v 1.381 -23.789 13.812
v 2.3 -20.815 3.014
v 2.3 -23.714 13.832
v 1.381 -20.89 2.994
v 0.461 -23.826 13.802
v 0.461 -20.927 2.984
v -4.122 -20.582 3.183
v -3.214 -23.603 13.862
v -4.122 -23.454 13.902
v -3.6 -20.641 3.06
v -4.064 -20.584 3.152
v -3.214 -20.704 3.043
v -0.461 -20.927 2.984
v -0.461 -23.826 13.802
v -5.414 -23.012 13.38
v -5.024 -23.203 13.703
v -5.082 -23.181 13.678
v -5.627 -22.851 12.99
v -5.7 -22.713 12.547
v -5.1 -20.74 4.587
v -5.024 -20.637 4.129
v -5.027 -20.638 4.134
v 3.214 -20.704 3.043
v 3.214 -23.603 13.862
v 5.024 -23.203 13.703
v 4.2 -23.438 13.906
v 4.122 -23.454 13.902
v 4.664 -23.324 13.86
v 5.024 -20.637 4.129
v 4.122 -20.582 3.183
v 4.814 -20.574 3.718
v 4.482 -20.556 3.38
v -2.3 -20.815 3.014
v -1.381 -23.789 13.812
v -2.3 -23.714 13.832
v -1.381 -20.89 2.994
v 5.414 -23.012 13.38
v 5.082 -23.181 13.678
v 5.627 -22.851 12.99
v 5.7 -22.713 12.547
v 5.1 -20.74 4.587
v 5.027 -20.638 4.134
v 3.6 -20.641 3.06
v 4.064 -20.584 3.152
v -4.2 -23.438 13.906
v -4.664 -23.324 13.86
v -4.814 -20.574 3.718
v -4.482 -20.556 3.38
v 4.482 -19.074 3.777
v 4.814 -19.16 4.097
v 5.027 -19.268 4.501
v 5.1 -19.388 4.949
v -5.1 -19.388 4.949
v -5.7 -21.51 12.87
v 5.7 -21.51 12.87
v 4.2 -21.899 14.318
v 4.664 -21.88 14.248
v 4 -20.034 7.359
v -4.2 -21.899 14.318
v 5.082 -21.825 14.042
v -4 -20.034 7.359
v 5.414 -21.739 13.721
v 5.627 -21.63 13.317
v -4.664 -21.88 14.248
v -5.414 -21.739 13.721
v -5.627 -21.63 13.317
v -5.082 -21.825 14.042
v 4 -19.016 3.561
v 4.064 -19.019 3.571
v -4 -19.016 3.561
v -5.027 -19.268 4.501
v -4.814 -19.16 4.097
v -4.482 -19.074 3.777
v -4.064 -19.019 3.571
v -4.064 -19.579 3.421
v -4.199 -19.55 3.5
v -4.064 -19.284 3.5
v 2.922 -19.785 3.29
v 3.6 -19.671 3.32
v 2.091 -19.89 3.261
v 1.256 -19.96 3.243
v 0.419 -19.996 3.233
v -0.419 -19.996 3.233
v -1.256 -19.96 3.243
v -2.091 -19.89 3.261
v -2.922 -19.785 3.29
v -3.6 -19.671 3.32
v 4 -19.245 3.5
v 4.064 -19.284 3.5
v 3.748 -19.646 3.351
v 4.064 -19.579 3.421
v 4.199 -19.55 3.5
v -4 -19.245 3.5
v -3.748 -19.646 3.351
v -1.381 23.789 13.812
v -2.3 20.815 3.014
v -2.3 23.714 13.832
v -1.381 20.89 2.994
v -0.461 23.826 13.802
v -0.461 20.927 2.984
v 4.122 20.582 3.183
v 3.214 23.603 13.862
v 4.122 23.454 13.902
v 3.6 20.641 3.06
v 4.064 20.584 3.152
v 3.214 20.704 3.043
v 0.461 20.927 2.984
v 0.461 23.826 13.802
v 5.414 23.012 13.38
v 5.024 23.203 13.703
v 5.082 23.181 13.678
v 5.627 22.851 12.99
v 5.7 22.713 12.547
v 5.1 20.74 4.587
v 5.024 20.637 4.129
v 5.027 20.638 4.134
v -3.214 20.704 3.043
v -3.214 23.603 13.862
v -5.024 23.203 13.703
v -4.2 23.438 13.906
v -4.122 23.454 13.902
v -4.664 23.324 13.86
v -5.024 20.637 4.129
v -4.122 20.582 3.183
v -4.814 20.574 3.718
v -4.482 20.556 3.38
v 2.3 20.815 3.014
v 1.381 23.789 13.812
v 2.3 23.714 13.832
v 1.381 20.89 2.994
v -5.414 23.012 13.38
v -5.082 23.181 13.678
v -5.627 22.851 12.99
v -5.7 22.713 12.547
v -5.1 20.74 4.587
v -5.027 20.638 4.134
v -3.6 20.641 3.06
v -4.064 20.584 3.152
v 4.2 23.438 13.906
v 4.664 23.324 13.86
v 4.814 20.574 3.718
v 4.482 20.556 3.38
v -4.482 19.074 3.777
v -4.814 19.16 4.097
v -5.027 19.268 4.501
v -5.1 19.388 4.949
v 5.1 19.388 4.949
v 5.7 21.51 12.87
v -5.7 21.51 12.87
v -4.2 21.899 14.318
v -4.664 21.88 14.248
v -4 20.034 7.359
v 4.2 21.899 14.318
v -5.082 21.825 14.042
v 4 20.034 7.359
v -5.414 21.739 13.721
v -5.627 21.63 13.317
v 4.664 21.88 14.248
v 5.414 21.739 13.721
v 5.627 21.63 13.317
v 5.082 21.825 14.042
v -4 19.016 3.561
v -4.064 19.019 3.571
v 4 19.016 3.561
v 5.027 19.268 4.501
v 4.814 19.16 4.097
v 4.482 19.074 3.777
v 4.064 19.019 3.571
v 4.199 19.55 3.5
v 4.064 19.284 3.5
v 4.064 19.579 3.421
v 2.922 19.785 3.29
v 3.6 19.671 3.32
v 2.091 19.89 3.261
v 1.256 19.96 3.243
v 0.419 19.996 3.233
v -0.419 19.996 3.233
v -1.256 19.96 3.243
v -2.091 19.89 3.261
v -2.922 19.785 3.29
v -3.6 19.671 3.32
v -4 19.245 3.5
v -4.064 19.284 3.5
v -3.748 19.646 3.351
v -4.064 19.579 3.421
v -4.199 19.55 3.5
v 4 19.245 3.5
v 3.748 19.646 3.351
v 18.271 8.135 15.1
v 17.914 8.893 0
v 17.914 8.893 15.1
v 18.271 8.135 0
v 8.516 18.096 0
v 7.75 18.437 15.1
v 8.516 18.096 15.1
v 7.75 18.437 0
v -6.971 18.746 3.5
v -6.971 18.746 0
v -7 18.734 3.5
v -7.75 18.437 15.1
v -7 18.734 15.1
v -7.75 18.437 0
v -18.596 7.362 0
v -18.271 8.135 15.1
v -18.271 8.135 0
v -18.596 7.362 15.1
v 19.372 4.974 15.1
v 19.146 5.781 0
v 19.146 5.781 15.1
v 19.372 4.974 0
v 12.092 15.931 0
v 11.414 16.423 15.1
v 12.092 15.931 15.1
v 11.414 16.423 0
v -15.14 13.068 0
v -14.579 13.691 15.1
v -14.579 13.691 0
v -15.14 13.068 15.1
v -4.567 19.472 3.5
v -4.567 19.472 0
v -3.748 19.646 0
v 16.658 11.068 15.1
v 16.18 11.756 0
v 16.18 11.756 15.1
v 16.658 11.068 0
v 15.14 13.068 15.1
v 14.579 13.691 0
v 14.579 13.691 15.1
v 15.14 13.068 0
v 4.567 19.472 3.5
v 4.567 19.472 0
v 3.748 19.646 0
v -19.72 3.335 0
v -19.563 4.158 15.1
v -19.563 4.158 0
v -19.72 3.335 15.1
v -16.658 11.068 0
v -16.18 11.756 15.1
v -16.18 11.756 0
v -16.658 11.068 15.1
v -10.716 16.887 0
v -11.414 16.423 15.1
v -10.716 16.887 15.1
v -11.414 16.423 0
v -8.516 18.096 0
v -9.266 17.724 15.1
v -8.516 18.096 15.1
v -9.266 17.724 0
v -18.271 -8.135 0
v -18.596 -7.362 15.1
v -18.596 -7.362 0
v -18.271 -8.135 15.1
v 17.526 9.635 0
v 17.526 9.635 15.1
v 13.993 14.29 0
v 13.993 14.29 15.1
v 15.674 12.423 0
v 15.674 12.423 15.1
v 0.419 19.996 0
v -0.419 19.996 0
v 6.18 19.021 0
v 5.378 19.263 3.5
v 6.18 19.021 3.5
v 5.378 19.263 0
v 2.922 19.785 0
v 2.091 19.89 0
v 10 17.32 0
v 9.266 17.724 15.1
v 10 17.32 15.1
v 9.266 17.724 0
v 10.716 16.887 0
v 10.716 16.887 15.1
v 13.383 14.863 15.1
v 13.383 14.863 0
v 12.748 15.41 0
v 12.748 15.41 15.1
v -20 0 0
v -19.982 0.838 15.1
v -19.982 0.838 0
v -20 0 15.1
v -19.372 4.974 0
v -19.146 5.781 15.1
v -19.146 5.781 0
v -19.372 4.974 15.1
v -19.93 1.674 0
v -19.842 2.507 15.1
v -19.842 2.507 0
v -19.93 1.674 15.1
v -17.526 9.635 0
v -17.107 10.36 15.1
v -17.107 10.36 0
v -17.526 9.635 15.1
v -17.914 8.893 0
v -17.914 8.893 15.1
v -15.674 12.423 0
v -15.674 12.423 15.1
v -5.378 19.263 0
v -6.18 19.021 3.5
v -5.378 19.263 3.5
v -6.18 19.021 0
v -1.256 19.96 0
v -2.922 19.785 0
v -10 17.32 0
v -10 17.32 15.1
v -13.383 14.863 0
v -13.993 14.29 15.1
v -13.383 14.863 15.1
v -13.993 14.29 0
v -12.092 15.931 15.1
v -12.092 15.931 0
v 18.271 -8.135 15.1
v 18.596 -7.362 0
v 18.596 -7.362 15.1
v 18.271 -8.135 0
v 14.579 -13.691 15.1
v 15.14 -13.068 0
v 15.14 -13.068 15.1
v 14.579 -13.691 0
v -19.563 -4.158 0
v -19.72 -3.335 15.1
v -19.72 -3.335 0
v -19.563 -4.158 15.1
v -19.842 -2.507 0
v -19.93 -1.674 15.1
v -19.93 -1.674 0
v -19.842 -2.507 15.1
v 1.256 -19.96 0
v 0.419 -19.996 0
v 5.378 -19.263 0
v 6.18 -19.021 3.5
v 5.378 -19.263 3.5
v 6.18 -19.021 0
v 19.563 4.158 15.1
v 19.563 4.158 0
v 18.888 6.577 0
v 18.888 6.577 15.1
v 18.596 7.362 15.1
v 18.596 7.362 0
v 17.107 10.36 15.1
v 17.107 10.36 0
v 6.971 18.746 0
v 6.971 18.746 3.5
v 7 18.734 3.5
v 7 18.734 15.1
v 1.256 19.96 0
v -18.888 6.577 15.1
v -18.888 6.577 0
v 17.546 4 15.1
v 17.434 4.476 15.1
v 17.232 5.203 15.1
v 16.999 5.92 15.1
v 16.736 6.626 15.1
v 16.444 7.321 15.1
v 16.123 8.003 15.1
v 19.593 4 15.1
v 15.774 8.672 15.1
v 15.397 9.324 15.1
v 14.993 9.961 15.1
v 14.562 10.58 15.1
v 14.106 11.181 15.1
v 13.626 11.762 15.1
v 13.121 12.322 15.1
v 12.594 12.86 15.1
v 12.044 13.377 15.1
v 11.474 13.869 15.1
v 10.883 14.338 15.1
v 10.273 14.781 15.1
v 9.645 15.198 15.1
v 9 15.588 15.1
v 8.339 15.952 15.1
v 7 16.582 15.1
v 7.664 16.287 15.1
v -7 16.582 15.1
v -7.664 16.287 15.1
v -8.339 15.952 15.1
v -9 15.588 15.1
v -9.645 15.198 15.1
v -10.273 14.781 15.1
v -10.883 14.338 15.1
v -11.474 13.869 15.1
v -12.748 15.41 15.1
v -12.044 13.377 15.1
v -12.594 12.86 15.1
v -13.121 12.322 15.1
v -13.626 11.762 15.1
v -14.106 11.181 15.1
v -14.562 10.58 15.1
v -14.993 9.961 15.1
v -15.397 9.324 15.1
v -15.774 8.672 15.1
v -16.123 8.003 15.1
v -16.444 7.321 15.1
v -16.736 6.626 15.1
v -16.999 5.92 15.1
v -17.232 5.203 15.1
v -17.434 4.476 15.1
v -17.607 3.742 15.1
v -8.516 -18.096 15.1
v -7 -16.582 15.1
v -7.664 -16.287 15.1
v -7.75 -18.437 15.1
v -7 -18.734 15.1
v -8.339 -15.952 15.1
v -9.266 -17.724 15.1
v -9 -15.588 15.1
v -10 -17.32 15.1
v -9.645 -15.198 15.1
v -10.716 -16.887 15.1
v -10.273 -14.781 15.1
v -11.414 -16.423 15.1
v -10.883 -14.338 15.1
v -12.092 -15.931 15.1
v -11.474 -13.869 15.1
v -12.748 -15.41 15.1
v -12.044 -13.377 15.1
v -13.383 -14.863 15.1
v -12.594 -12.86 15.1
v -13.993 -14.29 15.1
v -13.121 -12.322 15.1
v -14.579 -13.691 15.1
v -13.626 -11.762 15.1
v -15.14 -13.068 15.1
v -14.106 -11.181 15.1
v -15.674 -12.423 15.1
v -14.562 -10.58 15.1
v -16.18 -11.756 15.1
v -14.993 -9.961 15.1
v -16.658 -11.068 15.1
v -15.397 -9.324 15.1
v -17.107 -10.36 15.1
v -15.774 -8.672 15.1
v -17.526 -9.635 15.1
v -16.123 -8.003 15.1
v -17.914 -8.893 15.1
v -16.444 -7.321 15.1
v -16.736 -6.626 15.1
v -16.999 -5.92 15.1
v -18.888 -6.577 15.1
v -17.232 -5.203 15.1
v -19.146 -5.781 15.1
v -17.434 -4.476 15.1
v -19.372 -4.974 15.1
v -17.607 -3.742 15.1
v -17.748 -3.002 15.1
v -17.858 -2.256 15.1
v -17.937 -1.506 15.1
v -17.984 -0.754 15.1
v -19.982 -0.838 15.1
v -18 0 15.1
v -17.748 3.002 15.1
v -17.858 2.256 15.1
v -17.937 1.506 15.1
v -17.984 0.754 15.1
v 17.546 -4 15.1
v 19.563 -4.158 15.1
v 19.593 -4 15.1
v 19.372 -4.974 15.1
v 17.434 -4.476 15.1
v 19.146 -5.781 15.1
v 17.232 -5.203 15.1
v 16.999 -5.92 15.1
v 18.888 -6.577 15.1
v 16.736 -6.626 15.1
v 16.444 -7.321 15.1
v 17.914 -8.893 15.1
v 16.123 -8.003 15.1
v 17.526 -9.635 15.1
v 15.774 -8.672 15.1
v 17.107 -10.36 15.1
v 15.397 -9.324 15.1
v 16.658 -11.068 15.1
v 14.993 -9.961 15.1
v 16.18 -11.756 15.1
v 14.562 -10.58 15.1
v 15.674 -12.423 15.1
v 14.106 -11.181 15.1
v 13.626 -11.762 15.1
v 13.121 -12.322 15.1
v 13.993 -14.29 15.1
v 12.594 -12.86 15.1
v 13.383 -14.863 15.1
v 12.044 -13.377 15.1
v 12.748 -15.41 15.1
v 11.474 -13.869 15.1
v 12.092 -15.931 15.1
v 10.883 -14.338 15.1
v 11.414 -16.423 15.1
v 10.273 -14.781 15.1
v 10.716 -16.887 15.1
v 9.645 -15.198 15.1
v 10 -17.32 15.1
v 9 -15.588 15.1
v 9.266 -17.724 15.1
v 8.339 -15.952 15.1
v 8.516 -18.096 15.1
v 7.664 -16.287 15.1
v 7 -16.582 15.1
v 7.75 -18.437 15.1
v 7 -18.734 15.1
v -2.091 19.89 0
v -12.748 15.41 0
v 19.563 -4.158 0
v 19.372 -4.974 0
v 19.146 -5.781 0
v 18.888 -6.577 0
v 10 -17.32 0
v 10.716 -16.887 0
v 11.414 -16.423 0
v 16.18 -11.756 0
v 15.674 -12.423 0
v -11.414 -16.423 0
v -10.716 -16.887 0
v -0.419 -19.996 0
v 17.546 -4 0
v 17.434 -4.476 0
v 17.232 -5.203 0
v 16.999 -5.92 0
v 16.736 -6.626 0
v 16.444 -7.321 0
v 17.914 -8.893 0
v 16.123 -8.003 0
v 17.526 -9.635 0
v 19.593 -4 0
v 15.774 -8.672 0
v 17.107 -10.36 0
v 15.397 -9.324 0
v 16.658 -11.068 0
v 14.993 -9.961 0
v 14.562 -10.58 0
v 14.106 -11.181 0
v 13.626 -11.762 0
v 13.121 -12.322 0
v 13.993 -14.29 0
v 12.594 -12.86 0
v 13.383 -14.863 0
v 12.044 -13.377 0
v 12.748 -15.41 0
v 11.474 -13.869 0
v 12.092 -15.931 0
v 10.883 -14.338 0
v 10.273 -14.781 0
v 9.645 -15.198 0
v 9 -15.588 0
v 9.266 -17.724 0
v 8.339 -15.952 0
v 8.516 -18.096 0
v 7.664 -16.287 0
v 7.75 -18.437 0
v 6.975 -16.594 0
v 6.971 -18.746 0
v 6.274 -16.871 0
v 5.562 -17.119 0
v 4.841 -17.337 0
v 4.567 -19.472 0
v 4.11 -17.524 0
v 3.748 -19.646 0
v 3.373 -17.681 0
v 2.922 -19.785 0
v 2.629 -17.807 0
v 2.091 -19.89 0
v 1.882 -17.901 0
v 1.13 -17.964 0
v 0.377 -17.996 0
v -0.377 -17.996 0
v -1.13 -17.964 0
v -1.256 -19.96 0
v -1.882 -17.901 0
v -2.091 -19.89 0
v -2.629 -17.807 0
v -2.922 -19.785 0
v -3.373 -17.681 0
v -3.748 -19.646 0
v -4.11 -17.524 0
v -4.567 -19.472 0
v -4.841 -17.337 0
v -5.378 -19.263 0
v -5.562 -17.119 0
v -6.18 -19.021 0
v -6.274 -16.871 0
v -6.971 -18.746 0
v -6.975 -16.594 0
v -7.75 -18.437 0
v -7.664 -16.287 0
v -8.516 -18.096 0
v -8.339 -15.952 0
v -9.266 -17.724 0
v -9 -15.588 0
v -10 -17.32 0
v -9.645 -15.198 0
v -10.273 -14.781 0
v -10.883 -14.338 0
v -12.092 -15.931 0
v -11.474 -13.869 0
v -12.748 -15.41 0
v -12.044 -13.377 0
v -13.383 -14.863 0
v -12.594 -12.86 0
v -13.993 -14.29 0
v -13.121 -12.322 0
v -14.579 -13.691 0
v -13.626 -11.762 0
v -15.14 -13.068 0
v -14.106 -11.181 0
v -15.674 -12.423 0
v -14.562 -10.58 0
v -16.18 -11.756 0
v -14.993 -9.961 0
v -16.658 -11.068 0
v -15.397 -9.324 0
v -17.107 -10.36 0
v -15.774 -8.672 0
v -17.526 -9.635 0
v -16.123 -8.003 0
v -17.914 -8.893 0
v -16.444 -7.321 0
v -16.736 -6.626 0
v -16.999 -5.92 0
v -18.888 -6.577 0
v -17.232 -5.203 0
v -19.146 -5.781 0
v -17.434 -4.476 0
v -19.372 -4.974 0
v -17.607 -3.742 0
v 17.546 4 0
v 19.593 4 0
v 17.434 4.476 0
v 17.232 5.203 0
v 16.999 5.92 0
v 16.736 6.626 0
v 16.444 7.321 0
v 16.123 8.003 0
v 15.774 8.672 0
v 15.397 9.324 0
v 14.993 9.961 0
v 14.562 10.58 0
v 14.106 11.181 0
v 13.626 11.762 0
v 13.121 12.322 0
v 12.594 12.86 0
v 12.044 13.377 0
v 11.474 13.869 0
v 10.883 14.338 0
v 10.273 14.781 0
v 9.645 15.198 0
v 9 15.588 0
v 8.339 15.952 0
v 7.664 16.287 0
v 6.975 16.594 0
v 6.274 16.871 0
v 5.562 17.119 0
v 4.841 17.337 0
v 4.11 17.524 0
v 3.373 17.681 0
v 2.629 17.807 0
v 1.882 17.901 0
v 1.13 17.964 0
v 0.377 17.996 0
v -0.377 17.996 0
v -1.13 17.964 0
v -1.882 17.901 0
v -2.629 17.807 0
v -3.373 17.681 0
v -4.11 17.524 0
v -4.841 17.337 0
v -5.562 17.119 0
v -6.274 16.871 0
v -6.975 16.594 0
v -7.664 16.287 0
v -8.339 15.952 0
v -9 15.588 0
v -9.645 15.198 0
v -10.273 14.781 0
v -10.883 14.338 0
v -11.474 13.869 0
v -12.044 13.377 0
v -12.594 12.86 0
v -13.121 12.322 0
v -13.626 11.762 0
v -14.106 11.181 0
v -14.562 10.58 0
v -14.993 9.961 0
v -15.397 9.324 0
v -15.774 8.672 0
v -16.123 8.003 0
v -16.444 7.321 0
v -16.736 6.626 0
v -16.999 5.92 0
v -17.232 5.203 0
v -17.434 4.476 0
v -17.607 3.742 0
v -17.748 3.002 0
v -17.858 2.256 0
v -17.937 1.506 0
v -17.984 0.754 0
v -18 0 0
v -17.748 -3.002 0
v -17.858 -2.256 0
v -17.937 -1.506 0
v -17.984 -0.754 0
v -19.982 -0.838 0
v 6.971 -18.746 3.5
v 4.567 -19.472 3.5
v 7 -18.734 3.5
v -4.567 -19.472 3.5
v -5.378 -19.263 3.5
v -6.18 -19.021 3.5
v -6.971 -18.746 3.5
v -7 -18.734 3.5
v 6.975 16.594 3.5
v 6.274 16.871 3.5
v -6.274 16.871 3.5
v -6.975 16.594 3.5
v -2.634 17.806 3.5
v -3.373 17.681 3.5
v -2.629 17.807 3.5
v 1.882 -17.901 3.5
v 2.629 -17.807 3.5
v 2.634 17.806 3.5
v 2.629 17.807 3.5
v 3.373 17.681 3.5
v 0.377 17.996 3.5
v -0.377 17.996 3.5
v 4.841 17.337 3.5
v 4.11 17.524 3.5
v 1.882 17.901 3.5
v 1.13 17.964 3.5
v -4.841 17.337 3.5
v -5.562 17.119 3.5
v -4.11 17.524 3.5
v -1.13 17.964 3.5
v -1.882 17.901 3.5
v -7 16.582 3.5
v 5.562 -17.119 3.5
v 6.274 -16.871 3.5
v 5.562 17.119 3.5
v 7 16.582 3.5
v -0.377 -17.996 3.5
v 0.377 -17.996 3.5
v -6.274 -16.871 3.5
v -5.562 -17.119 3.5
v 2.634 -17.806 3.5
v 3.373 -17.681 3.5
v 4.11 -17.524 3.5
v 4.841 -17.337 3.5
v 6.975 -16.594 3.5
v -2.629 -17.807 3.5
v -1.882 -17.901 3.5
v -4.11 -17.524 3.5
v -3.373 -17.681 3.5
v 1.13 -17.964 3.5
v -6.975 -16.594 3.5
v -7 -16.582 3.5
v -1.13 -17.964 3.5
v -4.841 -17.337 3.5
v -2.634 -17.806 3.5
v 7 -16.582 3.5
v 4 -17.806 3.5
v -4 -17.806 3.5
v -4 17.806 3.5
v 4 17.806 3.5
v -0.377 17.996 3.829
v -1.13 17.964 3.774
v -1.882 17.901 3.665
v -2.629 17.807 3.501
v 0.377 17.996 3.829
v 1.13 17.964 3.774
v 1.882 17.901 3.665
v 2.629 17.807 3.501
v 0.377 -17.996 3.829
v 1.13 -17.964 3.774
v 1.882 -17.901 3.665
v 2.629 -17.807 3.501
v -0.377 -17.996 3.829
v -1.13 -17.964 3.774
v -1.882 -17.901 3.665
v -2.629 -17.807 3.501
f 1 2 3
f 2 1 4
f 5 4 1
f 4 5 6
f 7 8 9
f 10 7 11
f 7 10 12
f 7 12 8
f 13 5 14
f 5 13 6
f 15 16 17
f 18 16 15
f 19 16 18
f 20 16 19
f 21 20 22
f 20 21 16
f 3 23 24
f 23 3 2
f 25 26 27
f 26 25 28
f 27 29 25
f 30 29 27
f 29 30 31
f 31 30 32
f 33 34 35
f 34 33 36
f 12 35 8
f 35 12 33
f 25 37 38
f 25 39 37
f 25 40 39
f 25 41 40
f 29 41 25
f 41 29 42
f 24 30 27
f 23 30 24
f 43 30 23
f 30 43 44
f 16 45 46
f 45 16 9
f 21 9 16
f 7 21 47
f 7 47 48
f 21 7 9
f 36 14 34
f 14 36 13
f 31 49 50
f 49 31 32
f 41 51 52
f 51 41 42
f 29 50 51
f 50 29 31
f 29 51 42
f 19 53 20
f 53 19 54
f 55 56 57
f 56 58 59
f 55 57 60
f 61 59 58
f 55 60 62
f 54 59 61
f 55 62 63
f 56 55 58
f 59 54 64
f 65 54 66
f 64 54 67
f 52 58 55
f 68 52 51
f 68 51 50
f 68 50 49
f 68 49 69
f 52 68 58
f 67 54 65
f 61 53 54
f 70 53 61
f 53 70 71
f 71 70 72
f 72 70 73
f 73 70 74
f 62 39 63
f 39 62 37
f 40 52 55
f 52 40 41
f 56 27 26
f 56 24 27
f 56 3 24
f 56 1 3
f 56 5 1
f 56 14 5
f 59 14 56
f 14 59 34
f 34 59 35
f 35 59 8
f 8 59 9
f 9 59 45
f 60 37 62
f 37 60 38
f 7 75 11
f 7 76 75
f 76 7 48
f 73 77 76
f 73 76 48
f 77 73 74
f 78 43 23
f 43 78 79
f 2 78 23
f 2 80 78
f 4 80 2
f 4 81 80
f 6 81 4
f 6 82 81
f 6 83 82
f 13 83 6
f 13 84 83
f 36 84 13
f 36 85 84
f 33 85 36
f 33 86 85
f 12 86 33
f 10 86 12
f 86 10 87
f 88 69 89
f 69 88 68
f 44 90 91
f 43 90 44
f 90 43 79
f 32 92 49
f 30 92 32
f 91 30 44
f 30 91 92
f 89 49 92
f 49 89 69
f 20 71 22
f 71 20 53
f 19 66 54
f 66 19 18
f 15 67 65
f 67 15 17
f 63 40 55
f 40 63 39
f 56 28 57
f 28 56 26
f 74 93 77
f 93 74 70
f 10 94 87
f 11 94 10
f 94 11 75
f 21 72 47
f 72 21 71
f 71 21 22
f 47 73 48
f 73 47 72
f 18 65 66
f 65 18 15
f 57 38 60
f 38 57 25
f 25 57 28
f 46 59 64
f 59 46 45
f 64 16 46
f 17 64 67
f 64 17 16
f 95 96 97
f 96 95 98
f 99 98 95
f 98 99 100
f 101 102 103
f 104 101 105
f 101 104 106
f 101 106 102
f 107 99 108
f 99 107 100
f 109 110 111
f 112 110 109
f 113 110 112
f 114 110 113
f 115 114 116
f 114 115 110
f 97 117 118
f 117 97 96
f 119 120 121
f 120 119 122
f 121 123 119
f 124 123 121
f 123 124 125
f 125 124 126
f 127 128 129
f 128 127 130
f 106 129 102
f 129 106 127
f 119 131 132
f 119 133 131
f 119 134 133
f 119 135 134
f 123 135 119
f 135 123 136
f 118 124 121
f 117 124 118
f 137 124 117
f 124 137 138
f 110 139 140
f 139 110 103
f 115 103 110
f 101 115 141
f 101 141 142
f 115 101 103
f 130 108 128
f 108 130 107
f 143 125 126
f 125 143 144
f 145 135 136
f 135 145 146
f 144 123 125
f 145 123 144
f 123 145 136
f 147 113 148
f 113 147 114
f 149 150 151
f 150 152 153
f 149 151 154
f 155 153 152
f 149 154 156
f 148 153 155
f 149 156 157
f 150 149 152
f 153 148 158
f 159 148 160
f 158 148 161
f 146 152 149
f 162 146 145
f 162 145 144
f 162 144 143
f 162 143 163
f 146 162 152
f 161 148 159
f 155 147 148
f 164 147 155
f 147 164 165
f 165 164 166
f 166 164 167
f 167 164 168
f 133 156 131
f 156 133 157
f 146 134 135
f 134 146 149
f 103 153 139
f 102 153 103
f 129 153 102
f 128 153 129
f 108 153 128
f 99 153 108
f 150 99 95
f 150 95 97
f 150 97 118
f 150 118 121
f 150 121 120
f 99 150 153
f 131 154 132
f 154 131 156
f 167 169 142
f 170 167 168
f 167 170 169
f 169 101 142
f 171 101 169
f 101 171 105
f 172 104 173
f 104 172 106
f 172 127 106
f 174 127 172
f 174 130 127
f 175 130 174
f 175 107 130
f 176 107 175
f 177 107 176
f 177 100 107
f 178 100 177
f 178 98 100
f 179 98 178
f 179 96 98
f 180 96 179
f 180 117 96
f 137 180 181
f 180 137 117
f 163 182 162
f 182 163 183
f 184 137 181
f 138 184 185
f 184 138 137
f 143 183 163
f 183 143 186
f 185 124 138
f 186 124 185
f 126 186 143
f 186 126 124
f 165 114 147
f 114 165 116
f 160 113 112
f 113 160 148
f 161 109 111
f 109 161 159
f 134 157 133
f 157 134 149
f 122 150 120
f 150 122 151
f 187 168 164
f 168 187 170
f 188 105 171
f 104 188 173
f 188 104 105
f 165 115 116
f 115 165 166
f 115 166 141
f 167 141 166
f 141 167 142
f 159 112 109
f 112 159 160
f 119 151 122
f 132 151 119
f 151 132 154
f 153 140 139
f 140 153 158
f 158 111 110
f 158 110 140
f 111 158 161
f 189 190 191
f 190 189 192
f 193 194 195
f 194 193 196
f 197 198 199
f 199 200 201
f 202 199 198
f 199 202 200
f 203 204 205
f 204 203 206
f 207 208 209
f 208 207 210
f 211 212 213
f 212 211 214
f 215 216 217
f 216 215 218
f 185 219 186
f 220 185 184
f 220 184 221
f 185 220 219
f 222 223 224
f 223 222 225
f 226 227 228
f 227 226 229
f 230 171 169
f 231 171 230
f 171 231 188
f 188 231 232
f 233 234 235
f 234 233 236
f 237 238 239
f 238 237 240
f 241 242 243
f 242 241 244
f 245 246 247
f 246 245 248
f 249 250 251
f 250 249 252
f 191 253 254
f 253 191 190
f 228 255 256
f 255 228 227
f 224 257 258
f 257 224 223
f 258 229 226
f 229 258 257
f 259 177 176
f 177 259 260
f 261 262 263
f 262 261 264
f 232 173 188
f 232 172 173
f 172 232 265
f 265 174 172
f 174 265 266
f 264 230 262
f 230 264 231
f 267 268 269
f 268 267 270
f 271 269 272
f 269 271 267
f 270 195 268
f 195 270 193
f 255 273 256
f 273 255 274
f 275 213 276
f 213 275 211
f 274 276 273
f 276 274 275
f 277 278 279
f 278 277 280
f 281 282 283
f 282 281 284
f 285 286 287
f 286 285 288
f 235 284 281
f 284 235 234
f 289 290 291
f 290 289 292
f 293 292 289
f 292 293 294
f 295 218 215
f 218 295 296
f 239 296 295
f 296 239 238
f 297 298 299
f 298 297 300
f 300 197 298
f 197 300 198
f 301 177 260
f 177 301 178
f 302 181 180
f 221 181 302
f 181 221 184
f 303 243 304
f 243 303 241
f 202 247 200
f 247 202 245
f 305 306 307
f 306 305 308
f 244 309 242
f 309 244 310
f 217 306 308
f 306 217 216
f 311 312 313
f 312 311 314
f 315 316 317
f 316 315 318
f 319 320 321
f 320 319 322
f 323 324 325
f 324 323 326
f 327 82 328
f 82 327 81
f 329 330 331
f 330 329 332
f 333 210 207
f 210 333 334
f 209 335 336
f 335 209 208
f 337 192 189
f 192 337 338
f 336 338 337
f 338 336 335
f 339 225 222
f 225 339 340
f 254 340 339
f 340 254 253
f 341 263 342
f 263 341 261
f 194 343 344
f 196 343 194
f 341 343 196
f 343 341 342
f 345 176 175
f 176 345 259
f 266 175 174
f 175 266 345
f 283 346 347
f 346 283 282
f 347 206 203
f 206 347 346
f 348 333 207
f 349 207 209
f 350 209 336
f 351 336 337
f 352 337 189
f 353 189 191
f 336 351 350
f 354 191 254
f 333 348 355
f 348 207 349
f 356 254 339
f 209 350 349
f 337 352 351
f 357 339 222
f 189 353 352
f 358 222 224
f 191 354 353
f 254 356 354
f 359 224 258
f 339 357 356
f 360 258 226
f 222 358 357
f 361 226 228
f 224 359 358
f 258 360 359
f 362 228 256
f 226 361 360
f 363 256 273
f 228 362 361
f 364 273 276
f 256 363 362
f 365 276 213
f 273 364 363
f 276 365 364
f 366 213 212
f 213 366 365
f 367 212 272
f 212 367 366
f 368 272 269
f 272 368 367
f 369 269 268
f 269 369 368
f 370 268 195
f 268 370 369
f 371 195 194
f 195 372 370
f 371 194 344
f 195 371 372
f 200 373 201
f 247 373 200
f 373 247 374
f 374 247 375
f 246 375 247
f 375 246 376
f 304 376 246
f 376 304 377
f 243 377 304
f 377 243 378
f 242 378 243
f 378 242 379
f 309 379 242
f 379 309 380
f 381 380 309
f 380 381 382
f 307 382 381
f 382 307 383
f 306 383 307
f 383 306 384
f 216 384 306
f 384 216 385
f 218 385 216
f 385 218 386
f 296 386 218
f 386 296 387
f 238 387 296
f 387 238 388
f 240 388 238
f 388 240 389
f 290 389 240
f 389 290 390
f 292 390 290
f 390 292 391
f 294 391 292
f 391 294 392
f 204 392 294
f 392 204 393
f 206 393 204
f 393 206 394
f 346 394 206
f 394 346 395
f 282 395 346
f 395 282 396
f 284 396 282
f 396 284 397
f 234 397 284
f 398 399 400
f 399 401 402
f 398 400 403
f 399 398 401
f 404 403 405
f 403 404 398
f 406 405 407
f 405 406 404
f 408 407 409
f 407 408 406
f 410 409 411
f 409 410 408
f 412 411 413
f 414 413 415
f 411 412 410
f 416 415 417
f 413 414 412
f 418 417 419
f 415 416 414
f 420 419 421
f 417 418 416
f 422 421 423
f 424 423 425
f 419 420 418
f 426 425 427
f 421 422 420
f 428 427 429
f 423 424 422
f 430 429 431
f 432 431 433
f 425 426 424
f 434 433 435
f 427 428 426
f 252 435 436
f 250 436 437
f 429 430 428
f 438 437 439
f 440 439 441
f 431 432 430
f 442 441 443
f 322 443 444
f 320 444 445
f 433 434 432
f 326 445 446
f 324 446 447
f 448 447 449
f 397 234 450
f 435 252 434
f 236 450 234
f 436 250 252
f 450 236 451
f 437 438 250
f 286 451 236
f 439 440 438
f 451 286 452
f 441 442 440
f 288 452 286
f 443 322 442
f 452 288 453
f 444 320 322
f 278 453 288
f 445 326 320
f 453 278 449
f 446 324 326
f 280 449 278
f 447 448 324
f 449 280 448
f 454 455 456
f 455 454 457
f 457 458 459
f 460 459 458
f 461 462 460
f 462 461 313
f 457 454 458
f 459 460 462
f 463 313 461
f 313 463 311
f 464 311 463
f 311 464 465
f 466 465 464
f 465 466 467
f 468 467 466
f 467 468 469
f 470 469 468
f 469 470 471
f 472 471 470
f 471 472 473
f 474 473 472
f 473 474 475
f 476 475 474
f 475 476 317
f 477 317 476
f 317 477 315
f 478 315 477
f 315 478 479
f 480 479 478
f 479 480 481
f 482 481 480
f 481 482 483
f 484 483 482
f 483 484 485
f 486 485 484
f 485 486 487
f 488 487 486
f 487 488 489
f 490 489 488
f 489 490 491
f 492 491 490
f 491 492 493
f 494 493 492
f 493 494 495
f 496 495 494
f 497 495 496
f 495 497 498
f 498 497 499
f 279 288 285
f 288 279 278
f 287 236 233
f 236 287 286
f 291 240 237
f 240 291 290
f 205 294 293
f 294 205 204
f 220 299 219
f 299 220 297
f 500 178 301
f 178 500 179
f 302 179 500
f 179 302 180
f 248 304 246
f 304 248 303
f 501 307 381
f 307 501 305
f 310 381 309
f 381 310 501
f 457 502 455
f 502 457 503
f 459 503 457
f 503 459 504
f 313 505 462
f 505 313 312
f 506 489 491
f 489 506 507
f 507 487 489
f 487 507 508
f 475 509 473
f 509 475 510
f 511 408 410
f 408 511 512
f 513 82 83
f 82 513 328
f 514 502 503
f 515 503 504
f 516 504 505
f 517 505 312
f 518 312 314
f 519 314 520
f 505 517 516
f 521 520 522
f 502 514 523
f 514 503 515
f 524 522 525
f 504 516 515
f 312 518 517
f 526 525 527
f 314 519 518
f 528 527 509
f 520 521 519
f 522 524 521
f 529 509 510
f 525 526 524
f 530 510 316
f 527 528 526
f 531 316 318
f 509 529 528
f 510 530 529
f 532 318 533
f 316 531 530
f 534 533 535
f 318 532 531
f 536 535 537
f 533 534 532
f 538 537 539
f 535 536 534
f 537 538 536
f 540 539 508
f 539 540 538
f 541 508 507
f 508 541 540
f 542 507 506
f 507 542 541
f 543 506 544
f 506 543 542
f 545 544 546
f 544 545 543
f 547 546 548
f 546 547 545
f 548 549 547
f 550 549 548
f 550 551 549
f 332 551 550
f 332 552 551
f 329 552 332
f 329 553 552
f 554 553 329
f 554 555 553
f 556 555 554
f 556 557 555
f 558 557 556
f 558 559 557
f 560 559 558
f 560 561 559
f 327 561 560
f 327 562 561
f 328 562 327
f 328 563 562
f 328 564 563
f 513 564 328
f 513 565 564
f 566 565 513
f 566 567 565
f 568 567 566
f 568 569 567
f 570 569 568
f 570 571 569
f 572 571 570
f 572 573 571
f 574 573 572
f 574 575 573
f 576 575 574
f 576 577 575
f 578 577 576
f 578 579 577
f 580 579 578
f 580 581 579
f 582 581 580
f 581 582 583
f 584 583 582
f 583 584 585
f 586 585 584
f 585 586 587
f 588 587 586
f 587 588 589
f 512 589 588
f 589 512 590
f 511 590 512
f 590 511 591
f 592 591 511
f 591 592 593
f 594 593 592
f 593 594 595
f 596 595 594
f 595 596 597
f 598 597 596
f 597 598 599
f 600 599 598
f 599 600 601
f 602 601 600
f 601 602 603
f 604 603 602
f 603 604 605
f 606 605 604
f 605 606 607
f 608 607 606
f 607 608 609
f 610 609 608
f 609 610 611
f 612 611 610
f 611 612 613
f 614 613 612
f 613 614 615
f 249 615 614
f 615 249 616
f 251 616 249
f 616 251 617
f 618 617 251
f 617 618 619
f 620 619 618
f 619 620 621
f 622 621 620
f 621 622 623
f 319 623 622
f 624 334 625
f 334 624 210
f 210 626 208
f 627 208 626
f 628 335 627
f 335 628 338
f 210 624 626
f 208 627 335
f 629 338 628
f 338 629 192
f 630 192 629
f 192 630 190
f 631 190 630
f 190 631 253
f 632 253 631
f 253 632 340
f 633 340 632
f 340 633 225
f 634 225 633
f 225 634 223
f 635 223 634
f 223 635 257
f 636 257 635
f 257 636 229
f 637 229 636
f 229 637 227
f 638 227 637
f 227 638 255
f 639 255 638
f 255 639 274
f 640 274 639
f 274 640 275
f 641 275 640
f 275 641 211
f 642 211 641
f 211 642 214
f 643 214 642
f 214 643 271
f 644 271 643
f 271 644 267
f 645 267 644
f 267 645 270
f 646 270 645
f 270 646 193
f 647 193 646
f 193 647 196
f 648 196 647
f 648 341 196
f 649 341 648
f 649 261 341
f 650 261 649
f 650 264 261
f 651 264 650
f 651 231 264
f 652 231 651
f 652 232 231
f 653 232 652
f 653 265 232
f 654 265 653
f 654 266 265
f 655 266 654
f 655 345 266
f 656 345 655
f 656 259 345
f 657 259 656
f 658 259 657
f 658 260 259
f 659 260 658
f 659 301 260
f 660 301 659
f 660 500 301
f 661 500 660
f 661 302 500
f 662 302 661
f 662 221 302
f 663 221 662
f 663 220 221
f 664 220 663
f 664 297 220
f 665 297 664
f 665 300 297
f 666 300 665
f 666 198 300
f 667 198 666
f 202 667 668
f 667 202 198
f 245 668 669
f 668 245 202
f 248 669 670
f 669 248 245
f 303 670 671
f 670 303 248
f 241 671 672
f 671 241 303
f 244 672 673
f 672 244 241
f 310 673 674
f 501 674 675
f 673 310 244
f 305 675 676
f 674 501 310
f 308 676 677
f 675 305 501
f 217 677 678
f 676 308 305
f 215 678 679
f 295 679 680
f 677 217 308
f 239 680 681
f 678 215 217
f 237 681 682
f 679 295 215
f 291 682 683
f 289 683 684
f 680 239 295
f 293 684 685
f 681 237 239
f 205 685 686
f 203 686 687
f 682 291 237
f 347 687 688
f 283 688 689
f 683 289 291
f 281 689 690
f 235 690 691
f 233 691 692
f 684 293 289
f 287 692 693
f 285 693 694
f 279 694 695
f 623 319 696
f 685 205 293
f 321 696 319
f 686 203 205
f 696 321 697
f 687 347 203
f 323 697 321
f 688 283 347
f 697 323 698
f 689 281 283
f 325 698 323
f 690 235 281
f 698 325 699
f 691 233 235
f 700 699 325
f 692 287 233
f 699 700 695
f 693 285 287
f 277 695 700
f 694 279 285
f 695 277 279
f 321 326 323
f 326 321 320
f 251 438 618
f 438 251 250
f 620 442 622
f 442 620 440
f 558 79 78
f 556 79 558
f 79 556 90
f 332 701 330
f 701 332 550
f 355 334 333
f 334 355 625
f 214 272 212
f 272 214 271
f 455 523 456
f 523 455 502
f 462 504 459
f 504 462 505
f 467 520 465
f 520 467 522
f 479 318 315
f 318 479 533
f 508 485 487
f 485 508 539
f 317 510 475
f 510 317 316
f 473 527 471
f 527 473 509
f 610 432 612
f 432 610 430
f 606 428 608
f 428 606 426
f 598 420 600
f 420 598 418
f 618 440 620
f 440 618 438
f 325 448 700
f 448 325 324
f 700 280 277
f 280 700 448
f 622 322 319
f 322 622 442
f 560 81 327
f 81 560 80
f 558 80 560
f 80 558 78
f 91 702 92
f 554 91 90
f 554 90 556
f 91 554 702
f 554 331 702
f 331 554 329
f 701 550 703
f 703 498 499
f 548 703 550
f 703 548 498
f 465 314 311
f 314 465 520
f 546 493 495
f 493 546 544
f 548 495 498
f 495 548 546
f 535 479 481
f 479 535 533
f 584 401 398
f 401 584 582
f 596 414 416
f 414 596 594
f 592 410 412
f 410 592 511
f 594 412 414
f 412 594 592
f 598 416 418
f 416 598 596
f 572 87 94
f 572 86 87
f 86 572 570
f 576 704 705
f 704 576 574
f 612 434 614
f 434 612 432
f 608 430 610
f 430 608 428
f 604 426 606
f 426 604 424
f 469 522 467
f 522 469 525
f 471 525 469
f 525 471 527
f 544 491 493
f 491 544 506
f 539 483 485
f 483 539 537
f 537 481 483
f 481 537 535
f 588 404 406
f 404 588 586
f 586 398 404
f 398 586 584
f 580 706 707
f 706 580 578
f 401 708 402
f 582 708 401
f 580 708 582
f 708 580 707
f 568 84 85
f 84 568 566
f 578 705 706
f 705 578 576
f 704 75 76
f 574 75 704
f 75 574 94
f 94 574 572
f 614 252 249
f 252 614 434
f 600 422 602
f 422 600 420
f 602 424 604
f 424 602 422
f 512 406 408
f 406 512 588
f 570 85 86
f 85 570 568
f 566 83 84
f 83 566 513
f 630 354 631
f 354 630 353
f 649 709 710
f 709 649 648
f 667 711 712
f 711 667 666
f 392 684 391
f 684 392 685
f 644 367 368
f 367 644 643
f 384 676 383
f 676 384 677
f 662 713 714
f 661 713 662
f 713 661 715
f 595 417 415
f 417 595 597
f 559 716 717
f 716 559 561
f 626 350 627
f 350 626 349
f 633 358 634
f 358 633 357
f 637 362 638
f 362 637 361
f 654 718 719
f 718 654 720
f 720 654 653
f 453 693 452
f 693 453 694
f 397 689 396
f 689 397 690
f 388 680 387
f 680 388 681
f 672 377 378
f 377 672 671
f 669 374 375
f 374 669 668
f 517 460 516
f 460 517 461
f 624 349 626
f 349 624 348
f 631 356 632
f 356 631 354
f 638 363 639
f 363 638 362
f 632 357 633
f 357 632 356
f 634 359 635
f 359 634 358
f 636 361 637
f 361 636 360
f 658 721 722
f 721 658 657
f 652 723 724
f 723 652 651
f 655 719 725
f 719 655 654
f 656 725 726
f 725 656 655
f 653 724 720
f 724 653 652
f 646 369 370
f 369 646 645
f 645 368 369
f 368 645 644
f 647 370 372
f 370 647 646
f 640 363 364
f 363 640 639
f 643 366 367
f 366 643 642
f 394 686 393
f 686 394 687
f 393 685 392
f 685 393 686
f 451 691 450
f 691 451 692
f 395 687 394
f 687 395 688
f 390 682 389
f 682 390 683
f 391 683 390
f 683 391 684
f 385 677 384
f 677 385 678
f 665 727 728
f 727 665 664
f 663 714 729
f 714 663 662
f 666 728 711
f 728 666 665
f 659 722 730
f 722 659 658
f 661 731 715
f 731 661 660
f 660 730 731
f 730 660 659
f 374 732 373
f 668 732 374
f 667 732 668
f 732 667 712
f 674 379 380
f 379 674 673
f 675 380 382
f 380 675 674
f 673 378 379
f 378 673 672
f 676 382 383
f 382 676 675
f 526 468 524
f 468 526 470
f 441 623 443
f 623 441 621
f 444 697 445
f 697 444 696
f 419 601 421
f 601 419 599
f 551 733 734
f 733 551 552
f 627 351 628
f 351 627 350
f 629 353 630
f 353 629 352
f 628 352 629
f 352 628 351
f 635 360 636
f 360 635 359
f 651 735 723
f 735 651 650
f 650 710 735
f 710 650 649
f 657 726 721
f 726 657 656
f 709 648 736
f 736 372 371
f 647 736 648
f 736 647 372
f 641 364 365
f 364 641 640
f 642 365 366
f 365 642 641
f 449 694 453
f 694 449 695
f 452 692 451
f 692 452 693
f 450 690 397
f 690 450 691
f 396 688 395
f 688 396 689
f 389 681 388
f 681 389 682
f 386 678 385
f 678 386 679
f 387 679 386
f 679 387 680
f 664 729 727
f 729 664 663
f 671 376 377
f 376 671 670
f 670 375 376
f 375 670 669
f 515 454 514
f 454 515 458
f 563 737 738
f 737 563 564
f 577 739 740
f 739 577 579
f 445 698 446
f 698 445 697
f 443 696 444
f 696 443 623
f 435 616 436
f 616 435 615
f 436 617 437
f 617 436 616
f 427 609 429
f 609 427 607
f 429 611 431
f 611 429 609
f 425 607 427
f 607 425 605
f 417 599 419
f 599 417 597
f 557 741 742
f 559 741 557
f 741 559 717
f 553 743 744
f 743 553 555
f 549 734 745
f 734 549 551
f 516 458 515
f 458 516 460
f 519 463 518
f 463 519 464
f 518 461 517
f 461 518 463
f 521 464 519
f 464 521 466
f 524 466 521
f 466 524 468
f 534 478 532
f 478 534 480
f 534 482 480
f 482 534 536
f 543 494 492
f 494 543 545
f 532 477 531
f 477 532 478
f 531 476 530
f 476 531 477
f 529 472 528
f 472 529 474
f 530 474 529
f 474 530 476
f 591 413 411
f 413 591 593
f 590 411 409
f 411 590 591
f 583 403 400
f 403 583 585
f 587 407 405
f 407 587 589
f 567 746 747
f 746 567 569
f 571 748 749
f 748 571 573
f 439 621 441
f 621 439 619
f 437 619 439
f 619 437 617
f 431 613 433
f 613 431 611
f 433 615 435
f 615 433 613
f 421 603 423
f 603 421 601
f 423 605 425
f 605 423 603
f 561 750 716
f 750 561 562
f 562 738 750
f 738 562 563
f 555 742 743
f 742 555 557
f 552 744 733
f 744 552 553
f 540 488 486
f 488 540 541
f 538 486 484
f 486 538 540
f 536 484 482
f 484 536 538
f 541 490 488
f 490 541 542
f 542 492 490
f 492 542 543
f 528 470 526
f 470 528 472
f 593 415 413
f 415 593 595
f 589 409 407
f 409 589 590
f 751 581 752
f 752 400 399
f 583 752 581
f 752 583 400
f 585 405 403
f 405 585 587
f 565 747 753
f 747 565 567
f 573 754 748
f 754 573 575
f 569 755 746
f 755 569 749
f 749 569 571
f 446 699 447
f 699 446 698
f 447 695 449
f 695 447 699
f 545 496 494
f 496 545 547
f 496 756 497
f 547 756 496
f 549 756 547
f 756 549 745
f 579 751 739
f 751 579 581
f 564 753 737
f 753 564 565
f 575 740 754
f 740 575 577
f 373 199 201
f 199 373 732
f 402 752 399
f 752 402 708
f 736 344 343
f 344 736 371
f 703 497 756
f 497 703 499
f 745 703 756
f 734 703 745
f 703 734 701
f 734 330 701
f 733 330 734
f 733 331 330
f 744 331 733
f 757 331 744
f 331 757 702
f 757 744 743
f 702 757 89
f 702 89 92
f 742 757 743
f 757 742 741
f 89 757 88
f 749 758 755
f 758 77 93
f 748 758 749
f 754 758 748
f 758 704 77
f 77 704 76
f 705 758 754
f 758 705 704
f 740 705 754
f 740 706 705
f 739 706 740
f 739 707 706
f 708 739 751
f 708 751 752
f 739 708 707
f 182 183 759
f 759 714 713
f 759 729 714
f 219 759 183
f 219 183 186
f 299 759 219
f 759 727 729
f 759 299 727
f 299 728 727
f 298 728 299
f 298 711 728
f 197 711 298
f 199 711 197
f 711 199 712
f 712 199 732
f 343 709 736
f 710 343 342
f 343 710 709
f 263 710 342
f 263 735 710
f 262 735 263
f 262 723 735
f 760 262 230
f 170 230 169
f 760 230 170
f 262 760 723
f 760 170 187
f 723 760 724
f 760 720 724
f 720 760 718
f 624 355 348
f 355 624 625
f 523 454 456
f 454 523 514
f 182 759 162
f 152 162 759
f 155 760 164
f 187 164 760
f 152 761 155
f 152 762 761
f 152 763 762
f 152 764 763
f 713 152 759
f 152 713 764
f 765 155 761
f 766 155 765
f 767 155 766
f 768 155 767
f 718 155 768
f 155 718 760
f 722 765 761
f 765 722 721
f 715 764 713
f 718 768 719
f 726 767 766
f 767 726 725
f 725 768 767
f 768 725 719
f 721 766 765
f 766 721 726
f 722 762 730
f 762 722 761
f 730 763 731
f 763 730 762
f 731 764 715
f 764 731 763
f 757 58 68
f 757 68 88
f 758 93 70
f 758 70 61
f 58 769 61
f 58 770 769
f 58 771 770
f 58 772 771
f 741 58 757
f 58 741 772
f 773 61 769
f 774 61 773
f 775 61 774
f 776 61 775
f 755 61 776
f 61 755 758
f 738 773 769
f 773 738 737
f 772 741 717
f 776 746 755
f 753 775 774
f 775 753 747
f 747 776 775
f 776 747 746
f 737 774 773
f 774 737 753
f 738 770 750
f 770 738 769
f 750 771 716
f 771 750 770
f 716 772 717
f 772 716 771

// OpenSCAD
r1 = 40/2;
r2 = r1-2;
r3 = r1 + 2;
h = 15.1;
h2 = 3.5;
dw = 3;
dh = 10;
dr = 30;

dinks_w1 = 11.4;
dinks_w2 = 10.2;
dinks_h = 11.2;
dinks_r = 1.5;
dinks_t = 2.5;

module mainRingInnerMask() {
    translate([0,0,-1])
    cylinder(r=r2, h+2, $fn=150);
}
    
module mainRing() {
    difference() {
        cylinder(r=r1, h=h, $fn=150);
        mainRingInnerMask();
    }
}



module base() {
    difference() {
        mainRing();        
        translate([0, 0, 7+h2])
        cube([14, 100,14], center=true);
        
        translate([r1, 0, 0])
        cube([8, 8, h*3], center=true);
    };
}


module connectorOuterMask() {
    difference() {
        cylinder(r=r1*2, h=h*2, center=true);
        cylinder(r=r1+1, h=h*3, center=true);
    }
}

module connectors() {
    difference() {
        union() {
            translate([0,r1, 2.3])
            rotate([-30, 0, 0])
            cube([8, 5, 10], center=true);
        }
        mainRingInnerMask();
        connectorOuterMask();
        cylinder(r=r1*2, h=h2*2, center=true);
    }
}

module dinks() {
    fn=20;
    points=[
        [-dinks_w2/2+dinks_r, dinks_r],
        [ dinks_w2/2-dinks_r, dinks_r],
        [ dinks_w1/2-dinks_r, dinks_h-dinks_r],
        [-dinks_w1/2+dinks_r, dinks_h-dinks_r],
    ];

    hull() {
    translate(points[0]) cylinder(r=dinks_r, h=dinks_t, $fn=fn);
    translate(points[1]) cylinder(r=dinks_r, h=dinks_t, $fn=fn);
    translate(points[2]) cylinder(r=dinks_r, h=dinks_t, $fn=fn);
    translate(points[3]) cylinder(r=dinks_r, h=dinks_t, $fn=fn);
    }
}

module dinksOuterMask() {
    difference() {
        cylinder(r=r3*2, h=h*2, center=true);
        cylinder(r=r3, h=h*3, center=true, $fn=150);
    }
}

module placedDinks() {
    translate([0,-r1+1,h2])
    rotate([15,0,0])
    difference() {
        rotate([90,0,0]) dinks();
        translate([0,r1,-h2]) dinksOuterMask();
    }
}


base();
connectors(); rotate([0,0,180]) connectors();
placedDinks(); rotate([0,0,180]) placedDinks();
